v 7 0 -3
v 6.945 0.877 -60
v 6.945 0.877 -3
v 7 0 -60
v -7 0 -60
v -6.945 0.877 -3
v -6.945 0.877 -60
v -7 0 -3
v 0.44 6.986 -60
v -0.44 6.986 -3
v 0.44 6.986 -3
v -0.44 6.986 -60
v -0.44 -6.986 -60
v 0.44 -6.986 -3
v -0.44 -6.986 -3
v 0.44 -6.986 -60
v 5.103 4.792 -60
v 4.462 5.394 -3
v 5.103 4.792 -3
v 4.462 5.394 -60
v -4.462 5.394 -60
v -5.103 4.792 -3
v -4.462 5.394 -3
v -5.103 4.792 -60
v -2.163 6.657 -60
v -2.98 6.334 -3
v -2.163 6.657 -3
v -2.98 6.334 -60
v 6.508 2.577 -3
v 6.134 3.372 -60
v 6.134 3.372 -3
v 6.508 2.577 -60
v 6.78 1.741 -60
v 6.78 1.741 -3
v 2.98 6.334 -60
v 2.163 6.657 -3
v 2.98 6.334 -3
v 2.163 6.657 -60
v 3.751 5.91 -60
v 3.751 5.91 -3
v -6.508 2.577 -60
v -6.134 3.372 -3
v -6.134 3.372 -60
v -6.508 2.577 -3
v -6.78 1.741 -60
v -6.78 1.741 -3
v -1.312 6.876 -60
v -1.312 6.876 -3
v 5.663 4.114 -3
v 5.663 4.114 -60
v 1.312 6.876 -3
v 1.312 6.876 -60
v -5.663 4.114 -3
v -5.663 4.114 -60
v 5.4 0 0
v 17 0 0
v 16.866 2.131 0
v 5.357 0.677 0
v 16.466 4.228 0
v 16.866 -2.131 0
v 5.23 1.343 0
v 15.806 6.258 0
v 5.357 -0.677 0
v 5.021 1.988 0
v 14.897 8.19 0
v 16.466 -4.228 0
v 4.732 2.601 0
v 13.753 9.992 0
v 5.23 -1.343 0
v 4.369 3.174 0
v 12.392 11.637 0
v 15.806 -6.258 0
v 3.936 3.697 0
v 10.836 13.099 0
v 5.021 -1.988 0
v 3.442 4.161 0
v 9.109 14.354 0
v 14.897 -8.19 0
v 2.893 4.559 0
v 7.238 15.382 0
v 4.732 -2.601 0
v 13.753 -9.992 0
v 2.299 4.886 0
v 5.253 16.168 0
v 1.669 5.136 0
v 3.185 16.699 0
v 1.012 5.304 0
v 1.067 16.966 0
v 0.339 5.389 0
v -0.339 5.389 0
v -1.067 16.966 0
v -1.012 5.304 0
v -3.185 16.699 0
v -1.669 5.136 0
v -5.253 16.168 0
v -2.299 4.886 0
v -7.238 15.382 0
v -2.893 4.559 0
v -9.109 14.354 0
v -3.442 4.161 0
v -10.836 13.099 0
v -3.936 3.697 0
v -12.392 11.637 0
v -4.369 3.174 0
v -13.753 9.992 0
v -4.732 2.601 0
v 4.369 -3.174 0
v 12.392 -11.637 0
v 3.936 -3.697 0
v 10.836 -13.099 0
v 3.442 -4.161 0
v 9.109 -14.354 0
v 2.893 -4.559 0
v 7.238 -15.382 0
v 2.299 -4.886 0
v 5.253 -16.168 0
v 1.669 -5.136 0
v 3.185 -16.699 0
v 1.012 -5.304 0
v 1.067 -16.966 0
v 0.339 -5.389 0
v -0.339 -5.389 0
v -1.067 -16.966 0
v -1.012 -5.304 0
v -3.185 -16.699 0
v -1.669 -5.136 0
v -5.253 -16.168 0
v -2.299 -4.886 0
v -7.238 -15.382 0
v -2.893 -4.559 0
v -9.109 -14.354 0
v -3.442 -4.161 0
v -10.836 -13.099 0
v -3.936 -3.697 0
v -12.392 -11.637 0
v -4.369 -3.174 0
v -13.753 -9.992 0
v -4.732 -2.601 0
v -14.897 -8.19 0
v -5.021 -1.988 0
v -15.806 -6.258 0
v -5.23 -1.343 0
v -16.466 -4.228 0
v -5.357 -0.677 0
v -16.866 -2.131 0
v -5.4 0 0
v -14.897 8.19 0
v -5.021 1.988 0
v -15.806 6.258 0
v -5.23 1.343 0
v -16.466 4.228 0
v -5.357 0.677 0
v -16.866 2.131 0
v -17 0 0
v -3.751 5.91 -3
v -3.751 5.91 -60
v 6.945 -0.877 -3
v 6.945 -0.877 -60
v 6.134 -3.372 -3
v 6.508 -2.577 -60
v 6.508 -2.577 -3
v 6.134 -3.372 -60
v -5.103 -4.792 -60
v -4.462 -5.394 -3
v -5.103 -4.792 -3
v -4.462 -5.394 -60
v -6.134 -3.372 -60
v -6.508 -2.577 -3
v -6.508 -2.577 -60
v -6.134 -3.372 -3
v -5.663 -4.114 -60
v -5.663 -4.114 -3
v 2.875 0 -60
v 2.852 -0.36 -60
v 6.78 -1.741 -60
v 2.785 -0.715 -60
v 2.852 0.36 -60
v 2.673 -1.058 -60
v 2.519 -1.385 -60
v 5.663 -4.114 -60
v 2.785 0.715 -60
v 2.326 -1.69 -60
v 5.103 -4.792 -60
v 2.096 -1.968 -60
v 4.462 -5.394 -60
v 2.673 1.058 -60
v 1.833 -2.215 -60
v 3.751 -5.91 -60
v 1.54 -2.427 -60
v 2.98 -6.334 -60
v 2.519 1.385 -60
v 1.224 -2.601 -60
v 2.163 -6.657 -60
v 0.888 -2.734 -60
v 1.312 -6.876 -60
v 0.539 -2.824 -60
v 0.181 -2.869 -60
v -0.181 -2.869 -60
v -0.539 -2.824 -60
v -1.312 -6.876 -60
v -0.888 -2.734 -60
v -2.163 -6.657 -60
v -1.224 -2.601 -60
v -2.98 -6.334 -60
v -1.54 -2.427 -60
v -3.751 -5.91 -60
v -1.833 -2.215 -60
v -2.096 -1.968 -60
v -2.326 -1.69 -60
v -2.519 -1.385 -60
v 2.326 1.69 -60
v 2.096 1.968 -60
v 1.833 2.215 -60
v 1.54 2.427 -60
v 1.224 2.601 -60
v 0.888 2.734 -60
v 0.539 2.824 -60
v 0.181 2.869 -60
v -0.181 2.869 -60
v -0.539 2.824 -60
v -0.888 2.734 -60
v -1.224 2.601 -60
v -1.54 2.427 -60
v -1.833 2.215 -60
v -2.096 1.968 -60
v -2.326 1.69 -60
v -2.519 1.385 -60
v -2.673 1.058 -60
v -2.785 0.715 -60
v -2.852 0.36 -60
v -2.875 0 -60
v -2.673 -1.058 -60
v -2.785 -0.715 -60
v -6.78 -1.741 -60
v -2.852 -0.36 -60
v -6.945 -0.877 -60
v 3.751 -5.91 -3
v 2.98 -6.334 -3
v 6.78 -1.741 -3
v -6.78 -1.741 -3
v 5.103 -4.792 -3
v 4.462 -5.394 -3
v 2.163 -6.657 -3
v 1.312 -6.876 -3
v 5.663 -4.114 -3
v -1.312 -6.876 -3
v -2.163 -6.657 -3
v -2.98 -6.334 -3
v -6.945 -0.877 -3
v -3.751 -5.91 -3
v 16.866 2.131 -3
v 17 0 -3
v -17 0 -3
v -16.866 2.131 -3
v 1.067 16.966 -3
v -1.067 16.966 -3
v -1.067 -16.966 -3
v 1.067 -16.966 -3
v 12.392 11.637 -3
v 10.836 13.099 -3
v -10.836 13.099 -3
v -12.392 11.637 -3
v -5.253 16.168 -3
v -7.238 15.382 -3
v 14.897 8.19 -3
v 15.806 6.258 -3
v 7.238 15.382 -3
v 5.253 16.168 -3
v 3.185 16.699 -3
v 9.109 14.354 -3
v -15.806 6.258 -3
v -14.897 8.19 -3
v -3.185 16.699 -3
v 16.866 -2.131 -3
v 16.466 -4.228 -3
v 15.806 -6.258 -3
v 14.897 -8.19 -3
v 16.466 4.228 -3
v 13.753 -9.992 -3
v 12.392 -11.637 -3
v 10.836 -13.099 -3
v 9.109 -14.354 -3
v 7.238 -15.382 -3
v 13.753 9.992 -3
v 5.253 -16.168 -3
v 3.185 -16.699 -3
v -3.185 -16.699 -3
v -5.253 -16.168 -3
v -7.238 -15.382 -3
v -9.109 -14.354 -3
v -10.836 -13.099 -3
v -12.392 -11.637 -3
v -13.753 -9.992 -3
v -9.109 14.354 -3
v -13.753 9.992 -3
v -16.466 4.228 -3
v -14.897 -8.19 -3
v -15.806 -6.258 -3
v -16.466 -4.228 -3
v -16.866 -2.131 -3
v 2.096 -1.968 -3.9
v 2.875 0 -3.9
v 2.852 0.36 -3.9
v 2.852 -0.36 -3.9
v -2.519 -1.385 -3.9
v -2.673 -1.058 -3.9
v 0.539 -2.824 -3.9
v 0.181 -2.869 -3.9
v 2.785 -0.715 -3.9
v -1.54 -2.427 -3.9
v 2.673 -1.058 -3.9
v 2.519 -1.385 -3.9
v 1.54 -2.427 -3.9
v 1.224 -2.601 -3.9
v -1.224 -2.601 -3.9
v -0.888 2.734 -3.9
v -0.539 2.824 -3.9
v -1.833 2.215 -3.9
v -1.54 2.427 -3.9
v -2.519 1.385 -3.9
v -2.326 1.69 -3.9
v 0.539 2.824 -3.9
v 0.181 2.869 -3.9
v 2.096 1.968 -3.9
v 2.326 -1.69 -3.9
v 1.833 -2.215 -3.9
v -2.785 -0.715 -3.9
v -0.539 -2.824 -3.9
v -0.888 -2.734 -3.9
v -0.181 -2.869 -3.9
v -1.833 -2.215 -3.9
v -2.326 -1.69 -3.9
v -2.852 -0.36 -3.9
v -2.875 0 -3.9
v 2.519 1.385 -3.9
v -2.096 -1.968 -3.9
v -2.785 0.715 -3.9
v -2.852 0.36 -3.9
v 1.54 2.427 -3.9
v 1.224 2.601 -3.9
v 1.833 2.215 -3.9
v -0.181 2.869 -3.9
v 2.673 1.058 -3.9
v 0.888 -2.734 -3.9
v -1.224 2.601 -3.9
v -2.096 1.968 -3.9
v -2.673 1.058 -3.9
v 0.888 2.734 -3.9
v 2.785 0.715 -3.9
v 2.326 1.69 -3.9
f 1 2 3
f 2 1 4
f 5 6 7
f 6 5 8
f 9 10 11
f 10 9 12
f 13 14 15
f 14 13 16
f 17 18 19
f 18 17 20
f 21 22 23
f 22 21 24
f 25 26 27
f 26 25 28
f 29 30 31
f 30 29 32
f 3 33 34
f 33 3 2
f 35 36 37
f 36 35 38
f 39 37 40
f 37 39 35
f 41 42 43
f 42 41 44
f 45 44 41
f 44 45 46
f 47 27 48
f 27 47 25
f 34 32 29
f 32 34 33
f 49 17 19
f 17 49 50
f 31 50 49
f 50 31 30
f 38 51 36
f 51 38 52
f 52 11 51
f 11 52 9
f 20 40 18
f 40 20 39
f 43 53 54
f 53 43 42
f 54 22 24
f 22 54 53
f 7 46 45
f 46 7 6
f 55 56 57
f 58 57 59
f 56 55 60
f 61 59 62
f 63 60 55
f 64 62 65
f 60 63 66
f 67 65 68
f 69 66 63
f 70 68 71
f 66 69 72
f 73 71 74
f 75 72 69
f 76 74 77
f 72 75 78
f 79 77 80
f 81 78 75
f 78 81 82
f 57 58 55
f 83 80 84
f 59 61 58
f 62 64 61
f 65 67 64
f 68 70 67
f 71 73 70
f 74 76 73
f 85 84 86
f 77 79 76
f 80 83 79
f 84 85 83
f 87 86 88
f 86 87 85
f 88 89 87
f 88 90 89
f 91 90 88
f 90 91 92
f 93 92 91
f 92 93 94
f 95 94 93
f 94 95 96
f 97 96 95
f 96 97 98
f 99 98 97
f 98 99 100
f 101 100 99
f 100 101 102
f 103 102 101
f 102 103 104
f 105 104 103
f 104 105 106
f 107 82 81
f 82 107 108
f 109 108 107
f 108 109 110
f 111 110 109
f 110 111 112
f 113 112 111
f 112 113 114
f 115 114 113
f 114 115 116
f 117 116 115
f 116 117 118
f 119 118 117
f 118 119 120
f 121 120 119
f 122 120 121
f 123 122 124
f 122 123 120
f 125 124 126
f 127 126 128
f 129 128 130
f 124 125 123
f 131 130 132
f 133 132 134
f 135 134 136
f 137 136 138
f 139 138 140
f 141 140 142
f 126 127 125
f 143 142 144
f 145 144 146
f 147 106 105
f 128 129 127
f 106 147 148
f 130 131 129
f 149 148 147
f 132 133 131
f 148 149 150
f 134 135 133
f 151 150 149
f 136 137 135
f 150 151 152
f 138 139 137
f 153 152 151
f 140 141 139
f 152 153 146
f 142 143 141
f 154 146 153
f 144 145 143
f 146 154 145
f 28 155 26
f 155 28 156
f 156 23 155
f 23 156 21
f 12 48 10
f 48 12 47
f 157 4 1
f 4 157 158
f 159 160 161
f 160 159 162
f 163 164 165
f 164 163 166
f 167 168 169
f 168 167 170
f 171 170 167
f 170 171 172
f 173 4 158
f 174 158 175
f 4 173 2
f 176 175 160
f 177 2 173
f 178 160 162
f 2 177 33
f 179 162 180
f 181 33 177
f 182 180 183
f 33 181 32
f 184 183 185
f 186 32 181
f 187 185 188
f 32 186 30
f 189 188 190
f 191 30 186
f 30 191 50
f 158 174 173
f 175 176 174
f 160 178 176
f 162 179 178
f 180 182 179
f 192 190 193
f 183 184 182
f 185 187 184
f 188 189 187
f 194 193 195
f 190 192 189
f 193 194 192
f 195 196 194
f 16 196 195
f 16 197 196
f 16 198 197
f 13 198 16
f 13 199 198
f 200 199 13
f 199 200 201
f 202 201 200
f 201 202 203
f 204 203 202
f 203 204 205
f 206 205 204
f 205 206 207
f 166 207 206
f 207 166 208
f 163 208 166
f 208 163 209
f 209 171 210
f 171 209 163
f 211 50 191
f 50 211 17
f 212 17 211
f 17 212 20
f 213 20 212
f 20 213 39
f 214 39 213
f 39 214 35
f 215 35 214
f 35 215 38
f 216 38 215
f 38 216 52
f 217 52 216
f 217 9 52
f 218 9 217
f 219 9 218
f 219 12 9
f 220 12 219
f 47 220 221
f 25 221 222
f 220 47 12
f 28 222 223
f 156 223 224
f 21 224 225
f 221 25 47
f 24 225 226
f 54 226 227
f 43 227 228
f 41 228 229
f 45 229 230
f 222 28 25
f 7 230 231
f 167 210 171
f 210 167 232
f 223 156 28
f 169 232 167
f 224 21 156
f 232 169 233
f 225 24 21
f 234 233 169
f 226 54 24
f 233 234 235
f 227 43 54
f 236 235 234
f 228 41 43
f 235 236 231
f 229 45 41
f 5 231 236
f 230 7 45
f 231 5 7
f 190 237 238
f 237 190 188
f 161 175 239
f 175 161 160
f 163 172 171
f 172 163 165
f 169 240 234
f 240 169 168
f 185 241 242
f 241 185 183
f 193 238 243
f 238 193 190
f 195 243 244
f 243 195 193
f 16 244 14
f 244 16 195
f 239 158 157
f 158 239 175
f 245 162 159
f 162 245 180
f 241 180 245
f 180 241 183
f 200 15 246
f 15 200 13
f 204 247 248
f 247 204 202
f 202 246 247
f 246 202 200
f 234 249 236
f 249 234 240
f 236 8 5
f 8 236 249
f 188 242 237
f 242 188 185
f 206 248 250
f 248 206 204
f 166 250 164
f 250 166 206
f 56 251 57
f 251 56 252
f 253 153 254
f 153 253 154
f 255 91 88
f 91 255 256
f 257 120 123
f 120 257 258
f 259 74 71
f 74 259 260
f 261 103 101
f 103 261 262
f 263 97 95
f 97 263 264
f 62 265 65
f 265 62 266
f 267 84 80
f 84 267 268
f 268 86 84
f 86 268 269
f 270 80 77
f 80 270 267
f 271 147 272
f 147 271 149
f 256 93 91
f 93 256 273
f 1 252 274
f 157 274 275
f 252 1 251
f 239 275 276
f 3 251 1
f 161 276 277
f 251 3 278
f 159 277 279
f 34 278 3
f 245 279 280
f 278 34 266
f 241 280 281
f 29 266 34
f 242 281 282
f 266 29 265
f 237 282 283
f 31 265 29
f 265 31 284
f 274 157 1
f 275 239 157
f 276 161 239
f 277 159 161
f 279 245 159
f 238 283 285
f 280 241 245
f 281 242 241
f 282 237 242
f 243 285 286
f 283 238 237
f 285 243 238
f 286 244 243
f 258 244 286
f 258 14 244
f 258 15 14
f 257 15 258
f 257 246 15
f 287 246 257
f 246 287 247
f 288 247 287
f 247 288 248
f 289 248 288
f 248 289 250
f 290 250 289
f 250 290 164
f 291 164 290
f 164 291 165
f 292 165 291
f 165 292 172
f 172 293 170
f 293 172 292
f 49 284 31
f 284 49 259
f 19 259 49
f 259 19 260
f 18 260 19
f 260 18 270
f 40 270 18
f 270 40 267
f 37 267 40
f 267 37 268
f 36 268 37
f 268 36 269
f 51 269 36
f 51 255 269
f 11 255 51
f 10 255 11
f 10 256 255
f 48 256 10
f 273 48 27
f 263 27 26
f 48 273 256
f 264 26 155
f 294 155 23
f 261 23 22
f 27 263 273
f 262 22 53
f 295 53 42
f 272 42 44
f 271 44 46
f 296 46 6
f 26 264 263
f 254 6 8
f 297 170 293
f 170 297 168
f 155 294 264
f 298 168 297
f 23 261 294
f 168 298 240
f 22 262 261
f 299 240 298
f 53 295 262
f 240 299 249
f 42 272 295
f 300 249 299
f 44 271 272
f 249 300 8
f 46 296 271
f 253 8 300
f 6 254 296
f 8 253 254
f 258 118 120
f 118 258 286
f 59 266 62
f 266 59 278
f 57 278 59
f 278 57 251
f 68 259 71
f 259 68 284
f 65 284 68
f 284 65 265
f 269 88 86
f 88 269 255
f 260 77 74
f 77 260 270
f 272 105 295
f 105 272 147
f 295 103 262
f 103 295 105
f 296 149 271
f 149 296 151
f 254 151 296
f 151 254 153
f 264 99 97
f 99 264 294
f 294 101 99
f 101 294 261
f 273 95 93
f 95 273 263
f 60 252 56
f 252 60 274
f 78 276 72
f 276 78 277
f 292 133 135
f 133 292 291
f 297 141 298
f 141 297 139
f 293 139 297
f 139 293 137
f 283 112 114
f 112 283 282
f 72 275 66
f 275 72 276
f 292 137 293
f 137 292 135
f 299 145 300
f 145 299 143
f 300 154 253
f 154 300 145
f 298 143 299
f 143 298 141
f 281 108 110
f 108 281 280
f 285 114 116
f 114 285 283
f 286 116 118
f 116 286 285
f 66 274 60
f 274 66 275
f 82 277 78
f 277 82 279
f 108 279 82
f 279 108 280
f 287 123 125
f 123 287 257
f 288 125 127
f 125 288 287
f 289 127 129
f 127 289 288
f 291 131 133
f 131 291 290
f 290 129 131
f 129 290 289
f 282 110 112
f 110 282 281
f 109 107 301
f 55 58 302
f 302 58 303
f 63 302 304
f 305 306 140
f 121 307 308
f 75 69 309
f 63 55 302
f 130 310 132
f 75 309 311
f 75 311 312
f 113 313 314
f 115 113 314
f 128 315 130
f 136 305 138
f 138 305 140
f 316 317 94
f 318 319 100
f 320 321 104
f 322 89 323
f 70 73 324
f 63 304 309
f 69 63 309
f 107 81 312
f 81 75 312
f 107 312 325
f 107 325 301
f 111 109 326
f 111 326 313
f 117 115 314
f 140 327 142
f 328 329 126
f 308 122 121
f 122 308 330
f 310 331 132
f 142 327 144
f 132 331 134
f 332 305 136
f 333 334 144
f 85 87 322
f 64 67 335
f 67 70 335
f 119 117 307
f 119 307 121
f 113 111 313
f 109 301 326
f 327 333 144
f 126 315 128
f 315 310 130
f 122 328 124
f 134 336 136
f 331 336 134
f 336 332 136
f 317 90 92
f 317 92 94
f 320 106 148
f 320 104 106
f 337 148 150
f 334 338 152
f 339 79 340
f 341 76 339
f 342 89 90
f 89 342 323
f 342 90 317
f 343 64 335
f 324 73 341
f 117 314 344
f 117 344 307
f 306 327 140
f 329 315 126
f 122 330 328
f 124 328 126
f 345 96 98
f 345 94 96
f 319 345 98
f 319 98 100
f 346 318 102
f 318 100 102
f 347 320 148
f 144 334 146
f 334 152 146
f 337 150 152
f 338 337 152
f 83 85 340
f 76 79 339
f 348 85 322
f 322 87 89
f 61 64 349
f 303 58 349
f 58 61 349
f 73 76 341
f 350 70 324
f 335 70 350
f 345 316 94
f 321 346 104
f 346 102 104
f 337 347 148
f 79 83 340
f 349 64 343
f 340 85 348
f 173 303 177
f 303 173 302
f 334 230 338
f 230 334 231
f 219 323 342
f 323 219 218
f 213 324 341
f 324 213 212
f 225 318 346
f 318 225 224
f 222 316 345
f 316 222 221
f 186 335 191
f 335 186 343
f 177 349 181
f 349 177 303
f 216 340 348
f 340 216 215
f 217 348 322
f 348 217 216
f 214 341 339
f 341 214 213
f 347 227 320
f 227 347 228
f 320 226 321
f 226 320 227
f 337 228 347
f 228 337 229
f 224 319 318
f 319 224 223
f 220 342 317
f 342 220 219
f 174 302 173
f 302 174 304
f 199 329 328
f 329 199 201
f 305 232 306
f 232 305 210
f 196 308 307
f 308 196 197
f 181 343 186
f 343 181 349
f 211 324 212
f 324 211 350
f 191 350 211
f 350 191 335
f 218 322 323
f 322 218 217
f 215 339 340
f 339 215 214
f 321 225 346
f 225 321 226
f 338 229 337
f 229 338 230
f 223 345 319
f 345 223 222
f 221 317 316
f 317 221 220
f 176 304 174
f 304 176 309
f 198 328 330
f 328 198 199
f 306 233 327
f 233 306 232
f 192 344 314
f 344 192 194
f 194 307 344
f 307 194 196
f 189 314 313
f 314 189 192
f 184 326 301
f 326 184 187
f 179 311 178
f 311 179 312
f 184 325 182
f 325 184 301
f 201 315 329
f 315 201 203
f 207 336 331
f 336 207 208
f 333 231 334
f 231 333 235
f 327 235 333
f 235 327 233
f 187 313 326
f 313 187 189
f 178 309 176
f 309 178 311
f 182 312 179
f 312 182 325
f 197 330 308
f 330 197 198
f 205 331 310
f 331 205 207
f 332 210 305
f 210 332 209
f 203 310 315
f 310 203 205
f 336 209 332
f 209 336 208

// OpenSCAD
$fn = 50;


difference() {
	union() {
		translate(v = [0, 0, -60.0000000000]) {
			cylinder(h = 60, r = 7.0000000000);
		}
		translate(v = [0, 0, -3.0000000000]) {
			cylinder(h = 3, r = 17.0000000000);
		}
	}
	union() {
		translate(v = [0, 0, 0]) {
			rotate(a = [0, 0, 0]) {
				difference() {
					union() {
						#translate(v = [0, 0, -60.0000000000]) {
							cylinder(h = 60, r = 2.6000000000);
						}
						#translate(v = [0, 0, -3.9000000000]) {
							cylinder(h = 3.9000000000, r1 = 2.8750000000, r2 = 5.4000000000);
						}
						#translate(v = [0, 0, -60.0000000000]) {
							cylinder(h = 60, r = 2.8750000000);
						}
						#translate(v = [0, 0, -60.0000000000]) {
							cylinder(h = 60, r = 2.6000000000);
						}
					}
					union();
				}
			}
		}
	}
}
